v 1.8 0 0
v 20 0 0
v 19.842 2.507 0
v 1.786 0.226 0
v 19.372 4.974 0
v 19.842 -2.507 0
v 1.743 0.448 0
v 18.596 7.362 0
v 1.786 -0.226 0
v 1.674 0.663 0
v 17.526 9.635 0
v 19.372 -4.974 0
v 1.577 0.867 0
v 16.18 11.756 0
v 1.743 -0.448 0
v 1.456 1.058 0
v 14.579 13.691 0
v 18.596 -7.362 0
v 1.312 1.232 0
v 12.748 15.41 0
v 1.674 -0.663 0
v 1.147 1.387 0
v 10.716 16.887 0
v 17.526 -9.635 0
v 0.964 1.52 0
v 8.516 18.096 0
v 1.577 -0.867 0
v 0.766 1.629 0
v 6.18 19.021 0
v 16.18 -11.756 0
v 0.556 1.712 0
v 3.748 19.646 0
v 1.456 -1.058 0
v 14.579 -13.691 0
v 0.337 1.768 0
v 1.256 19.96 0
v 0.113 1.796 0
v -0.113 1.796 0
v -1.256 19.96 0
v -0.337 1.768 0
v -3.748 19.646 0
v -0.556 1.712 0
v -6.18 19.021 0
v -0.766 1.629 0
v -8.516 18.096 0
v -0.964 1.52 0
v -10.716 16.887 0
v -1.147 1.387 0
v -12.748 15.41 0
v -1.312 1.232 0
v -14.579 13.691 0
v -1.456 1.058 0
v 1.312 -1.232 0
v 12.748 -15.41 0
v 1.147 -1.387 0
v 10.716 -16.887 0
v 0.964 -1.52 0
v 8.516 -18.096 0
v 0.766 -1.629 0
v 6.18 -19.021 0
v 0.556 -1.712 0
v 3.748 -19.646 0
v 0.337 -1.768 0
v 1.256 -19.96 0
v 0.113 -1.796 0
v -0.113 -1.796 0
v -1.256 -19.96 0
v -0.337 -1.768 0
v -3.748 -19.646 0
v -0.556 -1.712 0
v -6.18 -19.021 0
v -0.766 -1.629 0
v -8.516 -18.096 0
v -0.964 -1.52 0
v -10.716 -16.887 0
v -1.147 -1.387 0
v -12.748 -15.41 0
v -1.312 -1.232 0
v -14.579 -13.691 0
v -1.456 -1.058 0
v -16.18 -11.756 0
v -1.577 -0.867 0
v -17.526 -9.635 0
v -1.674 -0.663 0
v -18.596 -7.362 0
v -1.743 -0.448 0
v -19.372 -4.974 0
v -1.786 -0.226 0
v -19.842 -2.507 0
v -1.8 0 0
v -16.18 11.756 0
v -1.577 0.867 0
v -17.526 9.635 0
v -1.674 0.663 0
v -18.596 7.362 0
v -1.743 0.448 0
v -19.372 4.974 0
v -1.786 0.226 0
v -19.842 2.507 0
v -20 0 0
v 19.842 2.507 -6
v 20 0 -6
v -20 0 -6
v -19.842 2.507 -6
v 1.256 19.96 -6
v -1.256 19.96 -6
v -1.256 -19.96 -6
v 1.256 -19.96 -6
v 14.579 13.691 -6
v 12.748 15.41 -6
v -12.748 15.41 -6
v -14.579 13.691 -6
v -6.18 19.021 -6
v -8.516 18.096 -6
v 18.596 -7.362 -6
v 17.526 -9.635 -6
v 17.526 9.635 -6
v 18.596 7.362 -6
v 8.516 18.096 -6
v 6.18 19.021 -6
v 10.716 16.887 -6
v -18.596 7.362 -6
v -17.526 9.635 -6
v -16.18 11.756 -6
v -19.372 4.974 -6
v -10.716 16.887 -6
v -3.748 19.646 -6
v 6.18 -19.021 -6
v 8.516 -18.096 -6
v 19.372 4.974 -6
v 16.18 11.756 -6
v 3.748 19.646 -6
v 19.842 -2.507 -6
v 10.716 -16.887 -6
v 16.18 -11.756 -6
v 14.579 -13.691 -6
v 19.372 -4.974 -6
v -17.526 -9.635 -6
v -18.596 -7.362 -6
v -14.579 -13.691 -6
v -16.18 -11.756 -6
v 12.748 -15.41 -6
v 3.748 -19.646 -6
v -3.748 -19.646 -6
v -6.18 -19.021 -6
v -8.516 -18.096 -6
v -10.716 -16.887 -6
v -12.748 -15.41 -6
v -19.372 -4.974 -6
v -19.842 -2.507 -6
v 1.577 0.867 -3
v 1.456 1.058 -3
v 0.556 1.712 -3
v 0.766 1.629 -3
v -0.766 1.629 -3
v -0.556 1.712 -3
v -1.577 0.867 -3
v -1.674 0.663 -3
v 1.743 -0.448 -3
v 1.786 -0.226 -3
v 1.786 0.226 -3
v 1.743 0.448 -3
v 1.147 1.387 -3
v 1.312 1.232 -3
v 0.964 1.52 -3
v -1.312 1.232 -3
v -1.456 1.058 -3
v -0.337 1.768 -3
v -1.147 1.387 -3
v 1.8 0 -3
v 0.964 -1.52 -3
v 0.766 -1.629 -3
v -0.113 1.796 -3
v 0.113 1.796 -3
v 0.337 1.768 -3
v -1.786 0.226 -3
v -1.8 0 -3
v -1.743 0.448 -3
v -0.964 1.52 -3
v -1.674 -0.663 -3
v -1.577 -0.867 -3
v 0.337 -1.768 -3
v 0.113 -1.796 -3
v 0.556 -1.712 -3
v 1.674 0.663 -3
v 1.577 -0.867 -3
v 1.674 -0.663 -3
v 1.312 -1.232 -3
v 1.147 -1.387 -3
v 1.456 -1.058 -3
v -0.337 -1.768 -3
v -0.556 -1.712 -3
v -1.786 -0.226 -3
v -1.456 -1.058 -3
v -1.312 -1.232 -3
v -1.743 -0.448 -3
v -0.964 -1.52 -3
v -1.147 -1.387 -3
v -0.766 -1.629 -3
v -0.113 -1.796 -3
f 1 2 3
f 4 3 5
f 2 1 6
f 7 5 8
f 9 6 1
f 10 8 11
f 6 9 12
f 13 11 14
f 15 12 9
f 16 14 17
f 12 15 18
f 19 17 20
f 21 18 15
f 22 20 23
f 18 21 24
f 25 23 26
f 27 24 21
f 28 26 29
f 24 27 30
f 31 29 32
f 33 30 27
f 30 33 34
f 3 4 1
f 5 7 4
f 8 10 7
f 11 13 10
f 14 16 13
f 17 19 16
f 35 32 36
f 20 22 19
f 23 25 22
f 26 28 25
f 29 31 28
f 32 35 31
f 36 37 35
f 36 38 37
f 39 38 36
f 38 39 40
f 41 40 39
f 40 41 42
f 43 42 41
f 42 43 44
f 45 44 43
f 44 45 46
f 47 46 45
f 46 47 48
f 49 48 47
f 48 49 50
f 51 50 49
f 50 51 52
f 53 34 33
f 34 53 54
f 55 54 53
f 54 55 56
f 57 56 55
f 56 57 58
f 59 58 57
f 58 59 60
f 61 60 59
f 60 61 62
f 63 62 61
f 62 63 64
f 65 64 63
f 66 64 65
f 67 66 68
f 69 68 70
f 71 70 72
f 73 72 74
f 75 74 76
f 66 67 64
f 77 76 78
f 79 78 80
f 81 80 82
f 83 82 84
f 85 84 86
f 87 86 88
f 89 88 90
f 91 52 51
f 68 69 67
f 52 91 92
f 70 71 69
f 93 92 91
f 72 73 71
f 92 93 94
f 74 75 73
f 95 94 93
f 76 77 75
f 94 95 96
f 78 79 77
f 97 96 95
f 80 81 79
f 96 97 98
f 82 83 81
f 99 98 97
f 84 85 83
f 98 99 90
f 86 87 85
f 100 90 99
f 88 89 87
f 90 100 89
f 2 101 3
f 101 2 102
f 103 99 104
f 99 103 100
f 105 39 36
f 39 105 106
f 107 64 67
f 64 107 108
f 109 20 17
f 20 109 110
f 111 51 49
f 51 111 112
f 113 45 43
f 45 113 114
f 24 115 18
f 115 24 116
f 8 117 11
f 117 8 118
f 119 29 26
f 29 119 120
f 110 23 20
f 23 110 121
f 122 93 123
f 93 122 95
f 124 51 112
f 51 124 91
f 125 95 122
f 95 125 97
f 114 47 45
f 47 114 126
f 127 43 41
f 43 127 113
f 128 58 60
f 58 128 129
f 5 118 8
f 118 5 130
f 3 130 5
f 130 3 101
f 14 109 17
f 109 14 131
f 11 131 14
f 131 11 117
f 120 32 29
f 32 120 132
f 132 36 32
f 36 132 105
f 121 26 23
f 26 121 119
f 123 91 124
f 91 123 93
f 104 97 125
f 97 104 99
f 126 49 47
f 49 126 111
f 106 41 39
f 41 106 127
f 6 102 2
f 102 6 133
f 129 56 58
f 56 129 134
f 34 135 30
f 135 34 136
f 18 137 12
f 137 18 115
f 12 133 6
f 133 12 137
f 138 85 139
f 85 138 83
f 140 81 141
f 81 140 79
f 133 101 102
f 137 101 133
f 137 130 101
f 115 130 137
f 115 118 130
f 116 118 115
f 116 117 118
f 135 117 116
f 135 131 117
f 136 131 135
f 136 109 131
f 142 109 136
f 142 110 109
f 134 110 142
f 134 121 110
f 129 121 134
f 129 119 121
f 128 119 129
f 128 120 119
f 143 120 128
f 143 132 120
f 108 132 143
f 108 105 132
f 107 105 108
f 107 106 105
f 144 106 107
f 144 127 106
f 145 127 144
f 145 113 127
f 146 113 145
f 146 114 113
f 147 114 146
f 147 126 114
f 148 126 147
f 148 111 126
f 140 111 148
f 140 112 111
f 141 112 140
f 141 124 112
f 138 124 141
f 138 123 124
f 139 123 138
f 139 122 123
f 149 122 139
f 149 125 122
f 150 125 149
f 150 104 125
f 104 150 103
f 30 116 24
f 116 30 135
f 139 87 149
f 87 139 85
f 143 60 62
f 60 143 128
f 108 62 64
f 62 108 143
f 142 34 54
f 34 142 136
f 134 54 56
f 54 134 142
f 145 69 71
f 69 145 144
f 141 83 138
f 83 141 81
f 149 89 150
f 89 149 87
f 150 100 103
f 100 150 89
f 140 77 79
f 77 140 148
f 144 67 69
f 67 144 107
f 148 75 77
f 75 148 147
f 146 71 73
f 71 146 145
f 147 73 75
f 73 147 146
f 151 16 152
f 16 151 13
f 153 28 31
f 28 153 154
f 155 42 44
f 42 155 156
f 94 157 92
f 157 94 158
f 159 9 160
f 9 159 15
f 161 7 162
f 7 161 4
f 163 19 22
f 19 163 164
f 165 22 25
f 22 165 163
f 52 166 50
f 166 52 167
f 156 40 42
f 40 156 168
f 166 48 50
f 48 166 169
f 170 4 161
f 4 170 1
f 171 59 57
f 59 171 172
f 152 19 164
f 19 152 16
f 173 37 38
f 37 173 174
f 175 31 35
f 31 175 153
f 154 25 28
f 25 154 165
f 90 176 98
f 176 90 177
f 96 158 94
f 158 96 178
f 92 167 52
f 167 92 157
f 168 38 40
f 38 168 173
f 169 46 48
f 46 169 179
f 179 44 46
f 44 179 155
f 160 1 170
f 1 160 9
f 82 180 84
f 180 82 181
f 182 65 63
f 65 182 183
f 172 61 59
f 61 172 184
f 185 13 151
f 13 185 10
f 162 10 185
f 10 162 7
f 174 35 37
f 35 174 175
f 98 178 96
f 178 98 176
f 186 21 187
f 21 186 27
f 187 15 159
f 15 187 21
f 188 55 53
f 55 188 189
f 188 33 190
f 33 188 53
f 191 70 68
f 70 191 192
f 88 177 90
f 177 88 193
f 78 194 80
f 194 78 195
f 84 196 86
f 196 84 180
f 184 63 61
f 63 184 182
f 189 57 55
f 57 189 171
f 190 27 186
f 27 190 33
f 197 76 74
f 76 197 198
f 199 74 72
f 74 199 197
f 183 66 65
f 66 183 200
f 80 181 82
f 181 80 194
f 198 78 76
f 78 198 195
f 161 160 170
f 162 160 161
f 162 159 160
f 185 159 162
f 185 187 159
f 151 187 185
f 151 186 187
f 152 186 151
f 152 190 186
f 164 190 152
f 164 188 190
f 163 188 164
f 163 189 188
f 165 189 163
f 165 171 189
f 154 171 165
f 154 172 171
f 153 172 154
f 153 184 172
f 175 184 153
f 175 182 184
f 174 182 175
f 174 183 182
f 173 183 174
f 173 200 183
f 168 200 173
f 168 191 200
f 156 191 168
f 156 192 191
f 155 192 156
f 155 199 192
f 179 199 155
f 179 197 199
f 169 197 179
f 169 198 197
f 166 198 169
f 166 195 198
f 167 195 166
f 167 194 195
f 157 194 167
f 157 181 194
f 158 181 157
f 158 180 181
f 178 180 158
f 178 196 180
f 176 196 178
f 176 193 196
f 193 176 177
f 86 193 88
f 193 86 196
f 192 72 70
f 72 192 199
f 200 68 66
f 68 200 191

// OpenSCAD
$fn = 50;


difference() {
	union() {
		translate(v = [0, 0, -3.0000000000]) {
			cylinder(h = 3, r = 10.0000000000);
		}
		translate(v = [0, 0, -6.0000000000]) {
			cylinder(h = 6, r = 20.0000000000);
		}
	}
	union() {
		#translate(v = [0, 0, -3]) {
			cylinder(h = 3, r = 1.8000000000);
		}
	}
}
